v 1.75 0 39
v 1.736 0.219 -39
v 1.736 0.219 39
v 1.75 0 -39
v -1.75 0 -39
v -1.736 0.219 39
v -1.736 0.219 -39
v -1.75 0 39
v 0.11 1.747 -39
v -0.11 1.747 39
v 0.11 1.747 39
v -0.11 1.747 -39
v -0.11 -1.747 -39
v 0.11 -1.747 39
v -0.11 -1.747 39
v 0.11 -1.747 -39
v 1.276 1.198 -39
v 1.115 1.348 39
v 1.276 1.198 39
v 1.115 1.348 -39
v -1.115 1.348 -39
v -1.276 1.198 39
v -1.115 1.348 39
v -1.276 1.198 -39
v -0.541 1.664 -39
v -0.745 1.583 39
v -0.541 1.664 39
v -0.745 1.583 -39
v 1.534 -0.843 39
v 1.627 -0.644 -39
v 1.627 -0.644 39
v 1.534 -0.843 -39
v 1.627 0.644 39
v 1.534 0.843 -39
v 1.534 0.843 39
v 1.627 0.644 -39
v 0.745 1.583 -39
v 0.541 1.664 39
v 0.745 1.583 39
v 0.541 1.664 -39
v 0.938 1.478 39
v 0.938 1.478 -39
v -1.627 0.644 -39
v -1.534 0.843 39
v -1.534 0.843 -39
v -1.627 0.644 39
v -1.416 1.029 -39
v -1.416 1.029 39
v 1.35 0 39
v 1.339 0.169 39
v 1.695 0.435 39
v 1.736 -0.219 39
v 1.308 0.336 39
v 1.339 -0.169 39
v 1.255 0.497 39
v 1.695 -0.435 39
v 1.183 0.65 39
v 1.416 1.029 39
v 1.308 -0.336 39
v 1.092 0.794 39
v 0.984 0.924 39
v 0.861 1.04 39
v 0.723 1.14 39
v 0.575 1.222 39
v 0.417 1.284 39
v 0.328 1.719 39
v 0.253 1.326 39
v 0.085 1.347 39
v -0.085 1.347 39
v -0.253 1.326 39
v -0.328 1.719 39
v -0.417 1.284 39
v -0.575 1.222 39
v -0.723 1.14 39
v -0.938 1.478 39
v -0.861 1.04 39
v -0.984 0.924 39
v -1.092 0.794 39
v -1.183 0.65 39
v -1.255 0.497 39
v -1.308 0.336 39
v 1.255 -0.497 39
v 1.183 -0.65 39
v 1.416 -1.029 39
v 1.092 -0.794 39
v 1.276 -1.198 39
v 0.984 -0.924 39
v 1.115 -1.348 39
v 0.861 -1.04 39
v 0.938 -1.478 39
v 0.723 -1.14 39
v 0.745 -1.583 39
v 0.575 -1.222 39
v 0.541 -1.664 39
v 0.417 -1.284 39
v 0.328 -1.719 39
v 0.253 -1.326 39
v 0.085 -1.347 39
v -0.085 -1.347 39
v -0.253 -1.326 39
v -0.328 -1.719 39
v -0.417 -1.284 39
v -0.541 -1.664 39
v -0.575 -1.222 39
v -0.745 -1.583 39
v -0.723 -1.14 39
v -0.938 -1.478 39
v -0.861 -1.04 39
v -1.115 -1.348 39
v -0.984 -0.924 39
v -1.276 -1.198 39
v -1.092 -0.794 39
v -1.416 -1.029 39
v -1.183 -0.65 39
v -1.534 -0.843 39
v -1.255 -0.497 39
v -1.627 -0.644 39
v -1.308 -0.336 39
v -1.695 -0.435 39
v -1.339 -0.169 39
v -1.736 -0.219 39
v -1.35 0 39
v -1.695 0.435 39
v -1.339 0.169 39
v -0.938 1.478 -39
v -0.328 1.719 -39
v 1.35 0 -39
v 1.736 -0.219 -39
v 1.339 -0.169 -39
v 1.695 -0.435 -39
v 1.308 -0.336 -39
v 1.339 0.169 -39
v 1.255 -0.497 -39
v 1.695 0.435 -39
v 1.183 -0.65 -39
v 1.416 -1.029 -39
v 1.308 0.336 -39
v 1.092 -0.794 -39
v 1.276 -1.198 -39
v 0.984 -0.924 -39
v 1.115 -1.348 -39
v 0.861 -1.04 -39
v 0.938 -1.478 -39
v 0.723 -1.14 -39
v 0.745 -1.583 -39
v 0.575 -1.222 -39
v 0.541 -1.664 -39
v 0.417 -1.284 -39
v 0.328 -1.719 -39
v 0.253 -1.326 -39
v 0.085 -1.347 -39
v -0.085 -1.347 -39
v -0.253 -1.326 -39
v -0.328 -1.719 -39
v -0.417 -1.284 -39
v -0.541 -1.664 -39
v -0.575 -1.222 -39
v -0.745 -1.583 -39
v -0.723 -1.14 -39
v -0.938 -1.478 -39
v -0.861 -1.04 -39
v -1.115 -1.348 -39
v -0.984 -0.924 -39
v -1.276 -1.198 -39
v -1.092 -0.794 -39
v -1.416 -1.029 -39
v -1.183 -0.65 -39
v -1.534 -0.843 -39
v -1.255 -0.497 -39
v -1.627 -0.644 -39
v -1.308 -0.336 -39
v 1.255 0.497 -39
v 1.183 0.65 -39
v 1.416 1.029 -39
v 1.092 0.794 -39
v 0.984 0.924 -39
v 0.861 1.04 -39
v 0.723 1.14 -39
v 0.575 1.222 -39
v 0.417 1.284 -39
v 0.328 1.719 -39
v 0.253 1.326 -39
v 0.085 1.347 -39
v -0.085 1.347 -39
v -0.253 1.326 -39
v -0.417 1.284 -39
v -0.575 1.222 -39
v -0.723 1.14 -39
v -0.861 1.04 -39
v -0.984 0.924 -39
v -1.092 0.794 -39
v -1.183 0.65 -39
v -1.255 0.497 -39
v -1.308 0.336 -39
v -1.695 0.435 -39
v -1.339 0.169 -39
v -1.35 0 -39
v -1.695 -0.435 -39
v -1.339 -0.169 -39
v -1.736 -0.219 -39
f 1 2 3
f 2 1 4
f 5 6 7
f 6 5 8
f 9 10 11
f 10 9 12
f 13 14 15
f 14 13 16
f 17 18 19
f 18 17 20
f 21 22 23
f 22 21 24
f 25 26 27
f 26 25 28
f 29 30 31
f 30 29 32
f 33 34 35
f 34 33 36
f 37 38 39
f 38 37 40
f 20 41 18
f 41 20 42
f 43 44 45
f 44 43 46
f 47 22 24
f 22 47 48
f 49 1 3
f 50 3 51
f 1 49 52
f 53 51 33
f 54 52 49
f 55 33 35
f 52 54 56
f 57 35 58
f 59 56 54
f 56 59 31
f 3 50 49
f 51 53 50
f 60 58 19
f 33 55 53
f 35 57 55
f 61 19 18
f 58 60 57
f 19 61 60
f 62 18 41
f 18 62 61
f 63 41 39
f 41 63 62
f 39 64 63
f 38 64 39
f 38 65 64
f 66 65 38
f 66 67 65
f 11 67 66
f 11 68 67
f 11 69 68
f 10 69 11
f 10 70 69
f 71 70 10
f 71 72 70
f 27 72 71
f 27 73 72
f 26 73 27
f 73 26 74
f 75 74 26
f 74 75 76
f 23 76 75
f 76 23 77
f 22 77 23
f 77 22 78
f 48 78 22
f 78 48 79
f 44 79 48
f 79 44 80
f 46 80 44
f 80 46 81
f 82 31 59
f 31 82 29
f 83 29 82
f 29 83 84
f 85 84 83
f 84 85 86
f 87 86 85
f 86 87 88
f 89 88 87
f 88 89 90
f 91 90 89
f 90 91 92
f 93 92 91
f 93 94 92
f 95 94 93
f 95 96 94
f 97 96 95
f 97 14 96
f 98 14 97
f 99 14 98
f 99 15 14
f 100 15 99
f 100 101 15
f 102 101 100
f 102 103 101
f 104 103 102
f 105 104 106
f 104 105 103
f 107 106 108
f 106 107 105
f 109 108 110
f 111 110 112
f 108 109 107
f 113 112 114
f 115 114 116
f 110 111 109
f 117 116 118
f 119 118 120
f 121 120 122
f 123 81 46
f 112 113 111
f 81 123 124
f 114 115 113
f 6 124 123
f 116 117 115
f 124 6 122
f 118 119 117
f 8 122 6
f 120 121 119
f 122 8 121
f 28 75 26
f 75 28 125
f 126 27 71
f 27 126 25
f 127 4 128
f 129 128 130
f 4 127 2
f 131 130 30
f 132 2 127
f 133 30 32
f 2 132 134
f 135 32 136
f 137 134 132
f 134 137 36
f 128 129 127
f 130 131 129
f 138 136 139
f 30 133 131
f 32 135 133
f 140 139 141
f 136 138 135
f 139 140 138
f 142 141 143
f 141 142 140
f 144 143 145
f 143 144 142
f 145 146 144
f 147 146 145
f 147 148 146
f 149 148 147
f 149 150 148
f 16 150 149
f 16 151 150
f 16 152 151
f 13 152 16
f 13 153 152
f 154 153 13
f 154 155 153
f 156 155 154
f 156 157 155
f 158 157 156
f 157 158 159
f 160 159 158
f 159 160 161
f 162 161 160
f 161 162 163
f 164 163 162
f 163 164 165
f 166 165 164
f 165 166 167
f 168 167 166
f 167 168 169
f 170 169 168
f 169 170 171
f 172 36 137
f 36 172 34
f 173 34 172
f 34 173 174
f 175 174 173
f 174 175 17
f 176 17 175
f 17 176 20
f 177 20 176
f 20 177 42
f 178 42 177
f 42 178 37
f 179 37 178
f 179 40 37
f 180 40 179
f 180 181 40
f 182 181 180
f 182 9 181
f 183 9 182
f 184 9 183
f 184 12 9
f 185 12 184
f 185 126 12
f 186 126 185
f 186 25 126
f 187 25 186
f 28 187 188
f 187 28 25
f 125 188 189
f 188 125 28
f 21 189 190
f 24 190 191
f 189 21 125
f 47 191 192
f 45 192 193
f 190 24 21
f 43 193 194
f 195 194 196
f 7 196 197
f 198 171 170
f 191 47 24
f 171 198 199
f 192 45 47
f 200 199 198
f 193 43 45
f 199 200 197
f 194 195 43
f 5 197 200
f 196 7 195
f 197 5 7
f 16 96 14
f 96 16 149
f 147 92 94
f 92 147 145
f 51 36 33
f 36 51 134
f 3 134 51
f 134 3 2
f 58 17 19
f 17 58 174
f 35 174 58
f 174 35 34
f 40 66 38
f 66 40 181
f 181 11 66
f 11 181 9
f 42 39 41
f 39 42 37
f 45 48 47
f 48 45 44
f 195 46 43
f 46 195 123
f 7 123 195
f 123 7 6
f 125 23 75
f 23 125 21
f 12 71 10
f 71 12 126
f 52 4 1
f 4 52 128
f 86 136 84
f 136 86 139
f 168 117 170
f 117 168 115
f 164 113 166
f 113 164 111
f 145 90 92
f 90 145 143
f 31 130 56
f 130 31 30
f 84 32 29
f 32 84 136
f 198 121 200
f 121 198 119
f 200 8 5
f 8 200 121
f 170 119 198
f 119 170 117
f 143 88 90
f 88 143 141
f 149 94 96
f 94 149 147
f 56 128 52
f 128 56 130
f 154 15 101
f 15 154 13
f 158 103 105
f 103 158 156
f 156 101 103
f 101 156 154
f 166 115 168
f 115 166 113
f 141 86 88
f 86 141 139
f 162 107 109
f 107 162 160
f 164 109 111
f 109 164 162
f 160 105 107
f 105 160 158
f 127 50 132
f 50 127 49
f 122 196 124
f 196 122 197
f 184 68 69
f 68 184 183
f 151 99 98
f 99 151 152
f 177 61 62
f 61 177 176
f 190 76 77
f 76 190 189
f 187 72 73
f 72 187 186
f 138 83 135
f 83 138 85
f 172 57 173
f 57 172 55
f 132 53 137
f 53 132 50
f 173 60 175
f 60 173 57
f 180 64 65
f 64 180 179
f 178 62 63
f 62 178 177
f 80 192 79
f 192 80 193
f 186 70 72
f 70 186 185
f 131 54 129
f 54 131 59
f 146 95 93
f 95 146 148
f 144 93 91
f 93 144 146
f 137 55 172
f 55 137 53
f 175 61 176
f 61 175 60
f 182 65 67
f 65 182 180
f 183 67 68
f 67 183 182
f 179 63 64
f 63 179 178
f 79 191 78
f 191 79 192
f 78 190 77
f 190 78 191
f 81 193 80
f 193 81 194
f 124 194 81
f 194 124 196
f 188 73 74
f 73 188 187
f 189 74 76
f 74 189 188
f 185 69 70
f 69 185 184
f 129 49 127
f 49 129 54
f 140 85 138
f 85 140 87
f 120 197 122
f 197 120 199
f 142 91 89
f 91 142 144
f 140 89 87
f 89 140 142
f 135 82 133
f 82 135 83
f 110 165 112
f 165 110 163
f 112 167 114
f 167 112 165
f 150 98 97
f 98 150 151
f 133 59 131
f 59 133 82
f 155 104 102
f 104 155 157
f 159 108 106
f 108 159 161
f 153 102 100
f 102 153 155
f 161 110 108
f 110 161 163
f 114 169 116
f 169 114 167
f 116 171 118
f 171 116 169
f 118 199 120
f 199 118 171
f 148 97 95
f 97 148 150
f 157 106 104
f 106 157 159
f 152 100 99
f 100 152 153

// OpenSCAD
$fn = 50;


difference() {
	union() {
		translate(v = [0, 0, -39.0000000000]) {
			cylinder(h = 78, r = 1.7500000000);
		}
	}
	union() {
		translate(v = [0, 0, -100.0000000000]) {
			cylinder(h = 200, r = 1.3500000000);
		}
	}
}
